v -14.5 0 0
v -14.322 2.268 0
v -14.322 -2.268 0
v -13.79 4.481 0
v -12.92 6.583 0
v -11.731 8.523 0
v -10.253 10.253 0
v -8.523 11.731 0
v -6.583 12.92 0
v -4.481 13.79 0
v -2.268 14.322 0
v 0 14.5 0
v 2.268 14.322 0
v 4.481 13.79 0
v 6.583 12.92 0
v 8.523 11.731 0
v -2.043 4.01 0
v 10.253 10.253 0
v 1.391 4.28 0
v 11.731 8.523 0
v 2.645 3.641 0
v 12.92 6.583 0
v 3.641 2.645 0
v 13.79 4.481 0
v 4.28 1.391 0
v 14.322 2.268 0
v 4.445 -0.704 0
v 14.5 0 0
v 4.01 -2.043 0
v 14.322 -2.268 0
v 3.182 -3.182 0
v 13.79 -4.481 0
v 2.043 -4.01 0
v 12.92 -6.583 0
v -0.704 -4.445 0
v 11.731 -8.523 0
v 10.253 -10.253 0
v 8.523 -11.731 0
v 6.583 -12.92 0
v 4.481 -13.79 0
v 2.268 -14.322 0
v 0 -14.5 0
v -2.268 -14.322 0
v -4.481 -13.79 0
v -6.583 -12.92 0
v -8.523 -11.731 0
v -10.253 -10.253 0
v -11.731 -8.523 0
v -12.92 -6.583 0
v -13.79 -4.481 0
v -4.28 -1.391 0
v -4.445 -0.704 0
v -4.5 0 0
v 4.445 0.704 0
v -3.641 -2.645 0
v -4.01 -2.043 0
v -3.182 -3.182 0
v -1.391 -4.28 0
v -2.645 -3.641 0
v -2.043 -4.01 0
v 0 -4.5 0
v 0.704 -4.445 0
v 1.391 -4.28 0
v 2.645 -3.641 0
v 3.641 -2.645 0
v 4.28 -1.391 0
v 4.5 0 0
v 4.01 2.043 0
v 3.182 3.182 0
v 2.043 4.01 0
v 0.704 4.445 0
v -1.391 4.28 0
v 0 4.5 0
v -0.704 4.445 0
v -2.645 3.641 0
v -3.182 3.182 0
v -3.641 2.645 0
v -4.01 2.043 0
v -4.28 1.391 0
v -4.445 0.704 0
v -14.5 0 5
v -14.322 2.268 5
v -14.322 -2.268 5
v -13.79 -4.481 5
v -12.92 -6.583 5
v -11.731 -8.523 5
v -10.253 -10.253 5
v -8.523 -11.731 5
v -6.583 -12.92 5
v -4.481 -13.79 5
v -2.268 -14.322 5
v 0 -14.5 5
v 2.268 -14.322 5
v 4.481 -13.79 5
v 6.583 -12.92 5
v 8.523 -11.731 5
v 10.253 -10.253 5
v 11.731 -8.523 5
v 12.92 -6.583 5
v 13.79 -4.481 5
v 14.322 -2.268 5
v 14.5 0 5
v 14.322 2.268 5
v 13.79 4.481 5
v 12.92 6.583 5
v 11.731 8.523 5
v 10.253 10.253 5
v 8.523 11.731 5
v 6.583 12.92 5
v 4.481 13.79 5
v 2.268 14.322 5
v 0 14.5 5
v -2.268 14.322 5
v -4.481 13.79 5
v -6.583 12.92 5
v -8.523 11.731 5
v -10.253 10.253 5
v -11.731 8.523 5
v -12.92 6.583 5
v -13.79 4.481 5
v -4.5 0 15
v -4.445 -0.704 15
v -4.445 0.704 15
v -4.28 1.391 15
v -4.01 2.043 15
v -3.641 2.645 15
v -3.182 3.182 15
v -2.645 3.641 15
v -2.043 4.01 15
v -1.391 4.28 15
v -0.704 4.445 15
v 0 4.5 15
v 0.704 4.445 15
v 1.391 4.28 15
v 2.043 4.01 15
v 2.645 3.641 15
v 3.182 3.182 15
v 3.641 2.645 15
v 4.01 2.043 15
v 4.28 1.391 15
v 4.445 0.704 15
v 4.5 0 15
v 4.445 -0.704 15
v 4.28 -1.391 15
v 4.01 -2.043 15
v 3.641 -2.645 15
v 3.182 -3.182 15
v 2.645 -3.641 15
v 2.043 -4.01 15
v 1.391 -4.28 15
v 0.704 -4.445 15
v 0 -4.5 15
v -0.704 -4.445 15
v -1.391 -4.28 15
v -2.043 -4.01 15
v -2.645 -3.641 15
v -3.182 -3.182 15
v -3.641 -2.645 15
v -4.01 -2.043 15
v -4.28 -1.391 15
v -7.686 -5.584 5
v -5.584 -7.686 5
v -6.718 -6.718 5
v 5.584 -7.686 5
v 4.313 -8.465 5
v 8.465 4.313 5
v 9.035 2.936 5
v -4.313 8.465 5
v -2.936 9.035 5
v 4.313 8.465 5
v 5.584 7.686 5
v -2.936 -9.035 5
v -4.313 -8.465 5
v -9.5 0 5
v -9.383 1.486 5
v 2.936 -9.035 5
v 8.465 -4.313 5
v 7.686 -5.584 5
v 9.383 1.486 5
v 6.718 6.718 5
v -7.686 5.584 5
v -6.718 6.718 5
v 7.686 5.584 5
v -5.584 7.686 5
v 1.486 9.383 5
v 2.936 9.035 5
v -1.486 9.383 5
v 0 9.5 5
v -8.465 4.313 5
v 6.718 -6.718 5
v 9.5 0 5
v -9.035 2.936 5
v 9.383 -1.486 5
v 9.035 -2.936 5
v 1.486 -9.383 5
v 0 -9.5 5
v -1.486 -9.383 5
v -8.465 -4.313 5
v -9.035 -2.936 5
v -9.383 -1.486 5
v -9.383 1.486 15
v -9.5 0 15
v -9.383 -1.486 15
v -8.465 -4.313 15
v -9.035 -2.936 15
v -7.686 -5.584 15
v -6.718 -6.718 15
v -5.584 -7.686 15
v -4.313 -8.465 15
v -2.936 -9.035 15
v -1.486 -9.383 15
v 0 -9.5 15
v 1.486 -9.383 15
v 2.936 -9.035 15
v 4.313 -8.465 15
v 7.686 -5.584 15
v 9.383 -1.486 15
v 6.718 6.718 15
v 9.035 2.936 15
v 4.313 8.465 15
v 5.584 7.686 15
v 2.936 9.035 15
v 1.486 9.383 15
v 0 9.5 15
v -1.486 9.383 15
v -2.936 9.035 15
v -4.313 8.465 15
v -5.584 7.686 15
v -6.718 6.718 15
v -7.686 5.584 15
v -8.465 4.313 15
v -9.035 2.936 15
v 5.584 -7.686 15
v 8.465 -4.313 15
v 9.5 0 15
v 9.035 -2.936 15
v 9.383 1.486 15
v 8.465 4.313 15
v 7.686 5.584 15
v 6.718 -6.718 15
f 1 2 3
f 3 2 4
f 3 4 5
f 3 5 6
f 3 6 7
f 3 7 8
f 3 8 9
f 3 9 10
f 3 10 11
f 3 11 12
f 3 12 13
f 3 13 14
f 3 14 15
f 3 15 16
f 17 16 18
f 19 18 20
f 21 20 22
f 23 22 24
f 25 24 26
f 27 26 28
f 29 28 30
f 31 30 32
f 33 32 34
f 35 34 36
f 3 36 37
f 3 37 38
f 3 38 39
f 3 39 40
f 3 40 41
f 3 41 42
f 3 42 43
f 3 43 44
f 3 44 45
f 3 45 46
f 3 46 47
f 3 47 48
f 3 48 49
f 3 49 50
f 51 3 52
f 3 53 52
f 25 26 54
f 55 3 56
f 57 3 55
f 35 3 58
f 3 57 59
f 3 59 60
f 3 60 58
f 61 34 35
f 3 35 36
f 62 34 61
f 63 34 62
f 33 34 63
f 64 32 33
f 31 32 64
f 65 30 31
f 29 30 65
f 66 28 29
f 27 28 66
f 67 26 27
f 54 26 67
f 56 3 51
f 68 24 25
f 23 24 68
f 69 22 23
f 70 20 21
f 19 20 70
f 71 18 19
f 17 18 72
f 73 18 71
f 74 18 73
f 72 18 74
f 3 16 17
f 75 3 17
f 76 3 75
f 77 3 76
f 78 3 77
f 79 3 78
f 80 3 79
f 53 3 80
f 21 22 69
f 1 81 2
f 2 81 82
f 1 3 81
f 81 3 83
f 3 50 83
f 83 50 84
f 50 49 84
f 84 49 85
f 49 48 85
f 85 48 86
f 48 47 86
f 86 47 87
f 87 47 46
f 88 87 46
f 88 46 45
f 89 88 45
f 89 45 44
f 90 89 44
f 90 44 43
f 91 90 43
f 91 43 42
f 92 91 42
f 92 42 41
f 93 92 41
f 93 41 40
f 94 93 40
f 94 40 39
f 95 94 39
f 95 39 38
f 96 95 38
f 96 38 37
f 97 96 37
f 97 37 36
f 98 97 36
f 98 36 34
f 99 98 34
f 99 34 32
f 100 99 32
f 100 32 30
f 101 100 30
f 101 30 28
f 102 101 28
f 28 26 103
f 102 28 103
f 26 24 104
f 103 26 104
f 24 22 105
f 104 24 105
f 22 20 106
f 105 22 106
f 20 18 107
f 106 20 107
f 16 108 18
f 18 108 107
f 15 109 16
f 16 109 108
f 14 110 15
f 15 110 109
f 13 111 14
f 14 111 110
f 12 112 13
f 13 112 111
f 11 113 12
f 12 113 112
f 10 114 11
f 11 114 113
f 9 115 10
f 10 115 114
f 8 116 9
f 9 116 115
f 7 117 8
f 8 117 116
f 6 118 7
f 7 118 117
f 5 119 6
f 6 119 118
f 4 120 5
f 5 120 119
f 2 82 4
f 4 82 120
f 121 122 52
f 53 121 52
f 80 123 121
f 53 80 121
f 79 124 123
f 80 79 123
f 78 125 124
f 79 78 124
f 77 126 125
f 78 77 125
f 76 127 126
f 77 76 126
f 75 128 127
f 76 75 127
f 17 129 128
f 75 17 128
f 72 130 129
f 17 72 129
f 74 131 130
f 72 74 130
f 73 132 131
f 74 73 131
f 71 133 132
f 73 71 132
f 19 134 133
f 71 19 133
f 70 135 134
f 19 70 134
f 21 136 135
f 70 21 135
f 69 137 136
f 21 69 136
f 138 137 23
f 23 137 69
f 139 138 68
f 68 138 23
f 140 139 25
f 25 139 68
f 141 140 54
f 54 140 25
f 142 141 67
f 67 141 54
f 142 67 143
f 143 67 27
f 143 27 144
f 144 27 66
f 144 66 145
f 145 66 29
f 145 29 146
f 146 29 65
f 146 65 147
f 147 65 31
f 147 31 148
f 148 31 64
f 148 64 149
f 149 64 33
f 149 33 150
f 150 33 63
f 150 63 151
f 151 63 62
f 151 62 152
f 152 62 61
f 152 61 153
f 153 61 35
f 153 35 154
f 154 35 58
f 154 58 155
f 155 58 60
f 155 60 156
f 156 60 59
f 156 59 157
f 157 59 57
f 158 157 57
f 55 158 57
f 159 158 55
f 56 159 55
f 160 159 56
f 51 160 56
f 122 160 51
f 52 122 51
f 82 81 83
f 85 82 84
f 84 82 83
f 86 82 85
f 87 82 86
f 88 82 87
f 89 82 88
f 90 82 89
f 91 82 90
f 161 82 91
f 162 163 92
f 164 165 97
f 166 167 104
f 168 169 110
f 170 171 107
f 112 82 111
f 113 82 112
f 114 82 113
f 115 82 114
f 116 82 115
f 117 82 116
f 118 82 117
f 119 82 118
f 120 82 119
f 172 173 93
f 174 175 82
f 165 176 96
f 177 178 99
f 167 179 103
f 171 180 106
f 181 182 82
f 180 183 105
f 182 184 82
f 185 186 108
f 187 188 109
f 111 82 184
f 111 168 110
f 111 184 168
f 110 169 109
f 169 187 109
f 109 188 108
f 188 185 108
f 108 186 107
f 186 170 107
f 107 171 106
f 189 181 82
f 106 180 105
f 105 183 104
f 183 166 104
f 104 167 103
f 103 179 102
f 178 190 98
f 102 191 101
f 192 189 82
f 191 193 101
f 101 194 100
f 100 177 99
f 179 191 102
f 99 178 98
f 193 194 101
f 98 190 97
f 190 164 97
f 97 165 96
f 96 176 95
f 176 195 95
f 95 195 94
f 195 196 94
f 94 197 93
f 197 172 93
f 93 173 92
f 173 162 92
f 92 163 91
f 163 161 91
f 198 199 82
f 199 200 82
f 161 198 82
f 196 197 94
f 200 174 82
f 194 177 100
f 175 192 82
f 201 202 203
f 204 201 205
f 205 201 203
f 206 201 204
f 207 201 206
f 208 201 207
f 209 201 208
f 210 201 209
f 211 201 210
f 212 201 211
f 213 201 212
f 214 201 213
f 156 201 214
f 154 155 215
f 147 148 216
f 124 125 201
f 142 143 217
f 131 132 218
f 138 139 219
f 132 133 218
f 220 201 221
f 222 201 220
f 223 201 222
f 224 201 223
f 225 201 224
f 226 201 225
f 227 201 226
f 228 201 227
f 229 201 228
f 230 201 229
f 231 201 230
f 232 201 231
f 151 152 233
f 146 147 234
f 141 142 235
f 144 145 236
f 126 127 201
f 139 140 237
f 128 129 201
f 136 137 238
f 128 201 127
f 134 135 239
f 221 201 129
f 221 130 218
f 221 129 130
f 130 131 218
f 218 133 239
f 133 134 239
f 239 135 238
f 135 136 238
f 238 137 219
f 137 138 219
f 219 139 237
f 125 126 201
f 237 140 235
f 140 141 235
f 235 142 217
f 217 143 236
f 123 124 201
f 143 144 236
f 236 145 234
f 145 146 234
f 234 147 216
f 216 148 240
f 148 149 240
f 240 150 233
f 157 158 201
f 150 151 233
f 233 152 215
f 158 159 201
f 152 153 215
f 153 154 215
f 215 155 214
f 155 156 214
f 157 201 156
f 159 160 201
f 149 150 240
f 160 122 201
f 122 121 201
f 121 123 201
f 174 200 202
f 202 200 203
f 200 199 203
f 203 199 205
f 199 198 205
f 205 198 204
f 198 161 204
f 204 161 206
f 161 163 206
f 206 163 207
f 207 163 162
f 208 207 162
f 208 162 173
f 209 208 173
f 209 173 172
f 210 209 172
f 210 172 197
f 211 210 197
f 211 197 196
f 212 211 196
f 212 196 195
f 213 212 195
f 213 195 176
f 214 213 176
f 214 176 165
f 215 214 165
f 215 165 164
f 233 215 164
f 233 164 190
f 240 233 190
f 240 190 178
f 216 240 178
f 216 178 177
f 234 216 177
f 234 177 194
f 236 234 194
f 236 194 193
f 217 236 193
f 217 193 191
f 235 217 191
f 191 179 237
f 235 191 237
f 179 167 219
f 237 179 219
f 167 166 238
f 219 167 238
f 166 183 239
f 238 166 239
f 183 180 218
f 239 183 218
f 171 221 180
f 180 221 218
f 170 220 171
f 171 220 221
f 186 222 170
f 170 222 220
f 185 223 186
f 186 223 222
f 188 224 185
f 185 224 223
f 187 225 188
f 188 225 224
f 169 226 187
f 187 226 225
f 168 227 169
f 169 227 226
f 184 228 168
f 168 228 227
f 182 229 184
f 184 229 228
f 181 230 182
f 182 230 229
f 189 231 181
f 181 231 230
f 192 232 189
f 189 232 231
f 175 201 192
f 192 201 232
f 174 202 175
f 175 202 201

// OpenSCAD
$fn=40;


module part3(w1, d, h1, h2)
{
	difference(){
		union(){
			cylinder(h=h1, r=0.5*w1+d);
			translate([0,0,h1])cylinder(h=h2, r=0.5*w1+d/2);
		}
		cylinder(h=h1+h2, r=0.5*w1);
	}
}

part3(w1=9, d=10, h1=5, h2=10);
